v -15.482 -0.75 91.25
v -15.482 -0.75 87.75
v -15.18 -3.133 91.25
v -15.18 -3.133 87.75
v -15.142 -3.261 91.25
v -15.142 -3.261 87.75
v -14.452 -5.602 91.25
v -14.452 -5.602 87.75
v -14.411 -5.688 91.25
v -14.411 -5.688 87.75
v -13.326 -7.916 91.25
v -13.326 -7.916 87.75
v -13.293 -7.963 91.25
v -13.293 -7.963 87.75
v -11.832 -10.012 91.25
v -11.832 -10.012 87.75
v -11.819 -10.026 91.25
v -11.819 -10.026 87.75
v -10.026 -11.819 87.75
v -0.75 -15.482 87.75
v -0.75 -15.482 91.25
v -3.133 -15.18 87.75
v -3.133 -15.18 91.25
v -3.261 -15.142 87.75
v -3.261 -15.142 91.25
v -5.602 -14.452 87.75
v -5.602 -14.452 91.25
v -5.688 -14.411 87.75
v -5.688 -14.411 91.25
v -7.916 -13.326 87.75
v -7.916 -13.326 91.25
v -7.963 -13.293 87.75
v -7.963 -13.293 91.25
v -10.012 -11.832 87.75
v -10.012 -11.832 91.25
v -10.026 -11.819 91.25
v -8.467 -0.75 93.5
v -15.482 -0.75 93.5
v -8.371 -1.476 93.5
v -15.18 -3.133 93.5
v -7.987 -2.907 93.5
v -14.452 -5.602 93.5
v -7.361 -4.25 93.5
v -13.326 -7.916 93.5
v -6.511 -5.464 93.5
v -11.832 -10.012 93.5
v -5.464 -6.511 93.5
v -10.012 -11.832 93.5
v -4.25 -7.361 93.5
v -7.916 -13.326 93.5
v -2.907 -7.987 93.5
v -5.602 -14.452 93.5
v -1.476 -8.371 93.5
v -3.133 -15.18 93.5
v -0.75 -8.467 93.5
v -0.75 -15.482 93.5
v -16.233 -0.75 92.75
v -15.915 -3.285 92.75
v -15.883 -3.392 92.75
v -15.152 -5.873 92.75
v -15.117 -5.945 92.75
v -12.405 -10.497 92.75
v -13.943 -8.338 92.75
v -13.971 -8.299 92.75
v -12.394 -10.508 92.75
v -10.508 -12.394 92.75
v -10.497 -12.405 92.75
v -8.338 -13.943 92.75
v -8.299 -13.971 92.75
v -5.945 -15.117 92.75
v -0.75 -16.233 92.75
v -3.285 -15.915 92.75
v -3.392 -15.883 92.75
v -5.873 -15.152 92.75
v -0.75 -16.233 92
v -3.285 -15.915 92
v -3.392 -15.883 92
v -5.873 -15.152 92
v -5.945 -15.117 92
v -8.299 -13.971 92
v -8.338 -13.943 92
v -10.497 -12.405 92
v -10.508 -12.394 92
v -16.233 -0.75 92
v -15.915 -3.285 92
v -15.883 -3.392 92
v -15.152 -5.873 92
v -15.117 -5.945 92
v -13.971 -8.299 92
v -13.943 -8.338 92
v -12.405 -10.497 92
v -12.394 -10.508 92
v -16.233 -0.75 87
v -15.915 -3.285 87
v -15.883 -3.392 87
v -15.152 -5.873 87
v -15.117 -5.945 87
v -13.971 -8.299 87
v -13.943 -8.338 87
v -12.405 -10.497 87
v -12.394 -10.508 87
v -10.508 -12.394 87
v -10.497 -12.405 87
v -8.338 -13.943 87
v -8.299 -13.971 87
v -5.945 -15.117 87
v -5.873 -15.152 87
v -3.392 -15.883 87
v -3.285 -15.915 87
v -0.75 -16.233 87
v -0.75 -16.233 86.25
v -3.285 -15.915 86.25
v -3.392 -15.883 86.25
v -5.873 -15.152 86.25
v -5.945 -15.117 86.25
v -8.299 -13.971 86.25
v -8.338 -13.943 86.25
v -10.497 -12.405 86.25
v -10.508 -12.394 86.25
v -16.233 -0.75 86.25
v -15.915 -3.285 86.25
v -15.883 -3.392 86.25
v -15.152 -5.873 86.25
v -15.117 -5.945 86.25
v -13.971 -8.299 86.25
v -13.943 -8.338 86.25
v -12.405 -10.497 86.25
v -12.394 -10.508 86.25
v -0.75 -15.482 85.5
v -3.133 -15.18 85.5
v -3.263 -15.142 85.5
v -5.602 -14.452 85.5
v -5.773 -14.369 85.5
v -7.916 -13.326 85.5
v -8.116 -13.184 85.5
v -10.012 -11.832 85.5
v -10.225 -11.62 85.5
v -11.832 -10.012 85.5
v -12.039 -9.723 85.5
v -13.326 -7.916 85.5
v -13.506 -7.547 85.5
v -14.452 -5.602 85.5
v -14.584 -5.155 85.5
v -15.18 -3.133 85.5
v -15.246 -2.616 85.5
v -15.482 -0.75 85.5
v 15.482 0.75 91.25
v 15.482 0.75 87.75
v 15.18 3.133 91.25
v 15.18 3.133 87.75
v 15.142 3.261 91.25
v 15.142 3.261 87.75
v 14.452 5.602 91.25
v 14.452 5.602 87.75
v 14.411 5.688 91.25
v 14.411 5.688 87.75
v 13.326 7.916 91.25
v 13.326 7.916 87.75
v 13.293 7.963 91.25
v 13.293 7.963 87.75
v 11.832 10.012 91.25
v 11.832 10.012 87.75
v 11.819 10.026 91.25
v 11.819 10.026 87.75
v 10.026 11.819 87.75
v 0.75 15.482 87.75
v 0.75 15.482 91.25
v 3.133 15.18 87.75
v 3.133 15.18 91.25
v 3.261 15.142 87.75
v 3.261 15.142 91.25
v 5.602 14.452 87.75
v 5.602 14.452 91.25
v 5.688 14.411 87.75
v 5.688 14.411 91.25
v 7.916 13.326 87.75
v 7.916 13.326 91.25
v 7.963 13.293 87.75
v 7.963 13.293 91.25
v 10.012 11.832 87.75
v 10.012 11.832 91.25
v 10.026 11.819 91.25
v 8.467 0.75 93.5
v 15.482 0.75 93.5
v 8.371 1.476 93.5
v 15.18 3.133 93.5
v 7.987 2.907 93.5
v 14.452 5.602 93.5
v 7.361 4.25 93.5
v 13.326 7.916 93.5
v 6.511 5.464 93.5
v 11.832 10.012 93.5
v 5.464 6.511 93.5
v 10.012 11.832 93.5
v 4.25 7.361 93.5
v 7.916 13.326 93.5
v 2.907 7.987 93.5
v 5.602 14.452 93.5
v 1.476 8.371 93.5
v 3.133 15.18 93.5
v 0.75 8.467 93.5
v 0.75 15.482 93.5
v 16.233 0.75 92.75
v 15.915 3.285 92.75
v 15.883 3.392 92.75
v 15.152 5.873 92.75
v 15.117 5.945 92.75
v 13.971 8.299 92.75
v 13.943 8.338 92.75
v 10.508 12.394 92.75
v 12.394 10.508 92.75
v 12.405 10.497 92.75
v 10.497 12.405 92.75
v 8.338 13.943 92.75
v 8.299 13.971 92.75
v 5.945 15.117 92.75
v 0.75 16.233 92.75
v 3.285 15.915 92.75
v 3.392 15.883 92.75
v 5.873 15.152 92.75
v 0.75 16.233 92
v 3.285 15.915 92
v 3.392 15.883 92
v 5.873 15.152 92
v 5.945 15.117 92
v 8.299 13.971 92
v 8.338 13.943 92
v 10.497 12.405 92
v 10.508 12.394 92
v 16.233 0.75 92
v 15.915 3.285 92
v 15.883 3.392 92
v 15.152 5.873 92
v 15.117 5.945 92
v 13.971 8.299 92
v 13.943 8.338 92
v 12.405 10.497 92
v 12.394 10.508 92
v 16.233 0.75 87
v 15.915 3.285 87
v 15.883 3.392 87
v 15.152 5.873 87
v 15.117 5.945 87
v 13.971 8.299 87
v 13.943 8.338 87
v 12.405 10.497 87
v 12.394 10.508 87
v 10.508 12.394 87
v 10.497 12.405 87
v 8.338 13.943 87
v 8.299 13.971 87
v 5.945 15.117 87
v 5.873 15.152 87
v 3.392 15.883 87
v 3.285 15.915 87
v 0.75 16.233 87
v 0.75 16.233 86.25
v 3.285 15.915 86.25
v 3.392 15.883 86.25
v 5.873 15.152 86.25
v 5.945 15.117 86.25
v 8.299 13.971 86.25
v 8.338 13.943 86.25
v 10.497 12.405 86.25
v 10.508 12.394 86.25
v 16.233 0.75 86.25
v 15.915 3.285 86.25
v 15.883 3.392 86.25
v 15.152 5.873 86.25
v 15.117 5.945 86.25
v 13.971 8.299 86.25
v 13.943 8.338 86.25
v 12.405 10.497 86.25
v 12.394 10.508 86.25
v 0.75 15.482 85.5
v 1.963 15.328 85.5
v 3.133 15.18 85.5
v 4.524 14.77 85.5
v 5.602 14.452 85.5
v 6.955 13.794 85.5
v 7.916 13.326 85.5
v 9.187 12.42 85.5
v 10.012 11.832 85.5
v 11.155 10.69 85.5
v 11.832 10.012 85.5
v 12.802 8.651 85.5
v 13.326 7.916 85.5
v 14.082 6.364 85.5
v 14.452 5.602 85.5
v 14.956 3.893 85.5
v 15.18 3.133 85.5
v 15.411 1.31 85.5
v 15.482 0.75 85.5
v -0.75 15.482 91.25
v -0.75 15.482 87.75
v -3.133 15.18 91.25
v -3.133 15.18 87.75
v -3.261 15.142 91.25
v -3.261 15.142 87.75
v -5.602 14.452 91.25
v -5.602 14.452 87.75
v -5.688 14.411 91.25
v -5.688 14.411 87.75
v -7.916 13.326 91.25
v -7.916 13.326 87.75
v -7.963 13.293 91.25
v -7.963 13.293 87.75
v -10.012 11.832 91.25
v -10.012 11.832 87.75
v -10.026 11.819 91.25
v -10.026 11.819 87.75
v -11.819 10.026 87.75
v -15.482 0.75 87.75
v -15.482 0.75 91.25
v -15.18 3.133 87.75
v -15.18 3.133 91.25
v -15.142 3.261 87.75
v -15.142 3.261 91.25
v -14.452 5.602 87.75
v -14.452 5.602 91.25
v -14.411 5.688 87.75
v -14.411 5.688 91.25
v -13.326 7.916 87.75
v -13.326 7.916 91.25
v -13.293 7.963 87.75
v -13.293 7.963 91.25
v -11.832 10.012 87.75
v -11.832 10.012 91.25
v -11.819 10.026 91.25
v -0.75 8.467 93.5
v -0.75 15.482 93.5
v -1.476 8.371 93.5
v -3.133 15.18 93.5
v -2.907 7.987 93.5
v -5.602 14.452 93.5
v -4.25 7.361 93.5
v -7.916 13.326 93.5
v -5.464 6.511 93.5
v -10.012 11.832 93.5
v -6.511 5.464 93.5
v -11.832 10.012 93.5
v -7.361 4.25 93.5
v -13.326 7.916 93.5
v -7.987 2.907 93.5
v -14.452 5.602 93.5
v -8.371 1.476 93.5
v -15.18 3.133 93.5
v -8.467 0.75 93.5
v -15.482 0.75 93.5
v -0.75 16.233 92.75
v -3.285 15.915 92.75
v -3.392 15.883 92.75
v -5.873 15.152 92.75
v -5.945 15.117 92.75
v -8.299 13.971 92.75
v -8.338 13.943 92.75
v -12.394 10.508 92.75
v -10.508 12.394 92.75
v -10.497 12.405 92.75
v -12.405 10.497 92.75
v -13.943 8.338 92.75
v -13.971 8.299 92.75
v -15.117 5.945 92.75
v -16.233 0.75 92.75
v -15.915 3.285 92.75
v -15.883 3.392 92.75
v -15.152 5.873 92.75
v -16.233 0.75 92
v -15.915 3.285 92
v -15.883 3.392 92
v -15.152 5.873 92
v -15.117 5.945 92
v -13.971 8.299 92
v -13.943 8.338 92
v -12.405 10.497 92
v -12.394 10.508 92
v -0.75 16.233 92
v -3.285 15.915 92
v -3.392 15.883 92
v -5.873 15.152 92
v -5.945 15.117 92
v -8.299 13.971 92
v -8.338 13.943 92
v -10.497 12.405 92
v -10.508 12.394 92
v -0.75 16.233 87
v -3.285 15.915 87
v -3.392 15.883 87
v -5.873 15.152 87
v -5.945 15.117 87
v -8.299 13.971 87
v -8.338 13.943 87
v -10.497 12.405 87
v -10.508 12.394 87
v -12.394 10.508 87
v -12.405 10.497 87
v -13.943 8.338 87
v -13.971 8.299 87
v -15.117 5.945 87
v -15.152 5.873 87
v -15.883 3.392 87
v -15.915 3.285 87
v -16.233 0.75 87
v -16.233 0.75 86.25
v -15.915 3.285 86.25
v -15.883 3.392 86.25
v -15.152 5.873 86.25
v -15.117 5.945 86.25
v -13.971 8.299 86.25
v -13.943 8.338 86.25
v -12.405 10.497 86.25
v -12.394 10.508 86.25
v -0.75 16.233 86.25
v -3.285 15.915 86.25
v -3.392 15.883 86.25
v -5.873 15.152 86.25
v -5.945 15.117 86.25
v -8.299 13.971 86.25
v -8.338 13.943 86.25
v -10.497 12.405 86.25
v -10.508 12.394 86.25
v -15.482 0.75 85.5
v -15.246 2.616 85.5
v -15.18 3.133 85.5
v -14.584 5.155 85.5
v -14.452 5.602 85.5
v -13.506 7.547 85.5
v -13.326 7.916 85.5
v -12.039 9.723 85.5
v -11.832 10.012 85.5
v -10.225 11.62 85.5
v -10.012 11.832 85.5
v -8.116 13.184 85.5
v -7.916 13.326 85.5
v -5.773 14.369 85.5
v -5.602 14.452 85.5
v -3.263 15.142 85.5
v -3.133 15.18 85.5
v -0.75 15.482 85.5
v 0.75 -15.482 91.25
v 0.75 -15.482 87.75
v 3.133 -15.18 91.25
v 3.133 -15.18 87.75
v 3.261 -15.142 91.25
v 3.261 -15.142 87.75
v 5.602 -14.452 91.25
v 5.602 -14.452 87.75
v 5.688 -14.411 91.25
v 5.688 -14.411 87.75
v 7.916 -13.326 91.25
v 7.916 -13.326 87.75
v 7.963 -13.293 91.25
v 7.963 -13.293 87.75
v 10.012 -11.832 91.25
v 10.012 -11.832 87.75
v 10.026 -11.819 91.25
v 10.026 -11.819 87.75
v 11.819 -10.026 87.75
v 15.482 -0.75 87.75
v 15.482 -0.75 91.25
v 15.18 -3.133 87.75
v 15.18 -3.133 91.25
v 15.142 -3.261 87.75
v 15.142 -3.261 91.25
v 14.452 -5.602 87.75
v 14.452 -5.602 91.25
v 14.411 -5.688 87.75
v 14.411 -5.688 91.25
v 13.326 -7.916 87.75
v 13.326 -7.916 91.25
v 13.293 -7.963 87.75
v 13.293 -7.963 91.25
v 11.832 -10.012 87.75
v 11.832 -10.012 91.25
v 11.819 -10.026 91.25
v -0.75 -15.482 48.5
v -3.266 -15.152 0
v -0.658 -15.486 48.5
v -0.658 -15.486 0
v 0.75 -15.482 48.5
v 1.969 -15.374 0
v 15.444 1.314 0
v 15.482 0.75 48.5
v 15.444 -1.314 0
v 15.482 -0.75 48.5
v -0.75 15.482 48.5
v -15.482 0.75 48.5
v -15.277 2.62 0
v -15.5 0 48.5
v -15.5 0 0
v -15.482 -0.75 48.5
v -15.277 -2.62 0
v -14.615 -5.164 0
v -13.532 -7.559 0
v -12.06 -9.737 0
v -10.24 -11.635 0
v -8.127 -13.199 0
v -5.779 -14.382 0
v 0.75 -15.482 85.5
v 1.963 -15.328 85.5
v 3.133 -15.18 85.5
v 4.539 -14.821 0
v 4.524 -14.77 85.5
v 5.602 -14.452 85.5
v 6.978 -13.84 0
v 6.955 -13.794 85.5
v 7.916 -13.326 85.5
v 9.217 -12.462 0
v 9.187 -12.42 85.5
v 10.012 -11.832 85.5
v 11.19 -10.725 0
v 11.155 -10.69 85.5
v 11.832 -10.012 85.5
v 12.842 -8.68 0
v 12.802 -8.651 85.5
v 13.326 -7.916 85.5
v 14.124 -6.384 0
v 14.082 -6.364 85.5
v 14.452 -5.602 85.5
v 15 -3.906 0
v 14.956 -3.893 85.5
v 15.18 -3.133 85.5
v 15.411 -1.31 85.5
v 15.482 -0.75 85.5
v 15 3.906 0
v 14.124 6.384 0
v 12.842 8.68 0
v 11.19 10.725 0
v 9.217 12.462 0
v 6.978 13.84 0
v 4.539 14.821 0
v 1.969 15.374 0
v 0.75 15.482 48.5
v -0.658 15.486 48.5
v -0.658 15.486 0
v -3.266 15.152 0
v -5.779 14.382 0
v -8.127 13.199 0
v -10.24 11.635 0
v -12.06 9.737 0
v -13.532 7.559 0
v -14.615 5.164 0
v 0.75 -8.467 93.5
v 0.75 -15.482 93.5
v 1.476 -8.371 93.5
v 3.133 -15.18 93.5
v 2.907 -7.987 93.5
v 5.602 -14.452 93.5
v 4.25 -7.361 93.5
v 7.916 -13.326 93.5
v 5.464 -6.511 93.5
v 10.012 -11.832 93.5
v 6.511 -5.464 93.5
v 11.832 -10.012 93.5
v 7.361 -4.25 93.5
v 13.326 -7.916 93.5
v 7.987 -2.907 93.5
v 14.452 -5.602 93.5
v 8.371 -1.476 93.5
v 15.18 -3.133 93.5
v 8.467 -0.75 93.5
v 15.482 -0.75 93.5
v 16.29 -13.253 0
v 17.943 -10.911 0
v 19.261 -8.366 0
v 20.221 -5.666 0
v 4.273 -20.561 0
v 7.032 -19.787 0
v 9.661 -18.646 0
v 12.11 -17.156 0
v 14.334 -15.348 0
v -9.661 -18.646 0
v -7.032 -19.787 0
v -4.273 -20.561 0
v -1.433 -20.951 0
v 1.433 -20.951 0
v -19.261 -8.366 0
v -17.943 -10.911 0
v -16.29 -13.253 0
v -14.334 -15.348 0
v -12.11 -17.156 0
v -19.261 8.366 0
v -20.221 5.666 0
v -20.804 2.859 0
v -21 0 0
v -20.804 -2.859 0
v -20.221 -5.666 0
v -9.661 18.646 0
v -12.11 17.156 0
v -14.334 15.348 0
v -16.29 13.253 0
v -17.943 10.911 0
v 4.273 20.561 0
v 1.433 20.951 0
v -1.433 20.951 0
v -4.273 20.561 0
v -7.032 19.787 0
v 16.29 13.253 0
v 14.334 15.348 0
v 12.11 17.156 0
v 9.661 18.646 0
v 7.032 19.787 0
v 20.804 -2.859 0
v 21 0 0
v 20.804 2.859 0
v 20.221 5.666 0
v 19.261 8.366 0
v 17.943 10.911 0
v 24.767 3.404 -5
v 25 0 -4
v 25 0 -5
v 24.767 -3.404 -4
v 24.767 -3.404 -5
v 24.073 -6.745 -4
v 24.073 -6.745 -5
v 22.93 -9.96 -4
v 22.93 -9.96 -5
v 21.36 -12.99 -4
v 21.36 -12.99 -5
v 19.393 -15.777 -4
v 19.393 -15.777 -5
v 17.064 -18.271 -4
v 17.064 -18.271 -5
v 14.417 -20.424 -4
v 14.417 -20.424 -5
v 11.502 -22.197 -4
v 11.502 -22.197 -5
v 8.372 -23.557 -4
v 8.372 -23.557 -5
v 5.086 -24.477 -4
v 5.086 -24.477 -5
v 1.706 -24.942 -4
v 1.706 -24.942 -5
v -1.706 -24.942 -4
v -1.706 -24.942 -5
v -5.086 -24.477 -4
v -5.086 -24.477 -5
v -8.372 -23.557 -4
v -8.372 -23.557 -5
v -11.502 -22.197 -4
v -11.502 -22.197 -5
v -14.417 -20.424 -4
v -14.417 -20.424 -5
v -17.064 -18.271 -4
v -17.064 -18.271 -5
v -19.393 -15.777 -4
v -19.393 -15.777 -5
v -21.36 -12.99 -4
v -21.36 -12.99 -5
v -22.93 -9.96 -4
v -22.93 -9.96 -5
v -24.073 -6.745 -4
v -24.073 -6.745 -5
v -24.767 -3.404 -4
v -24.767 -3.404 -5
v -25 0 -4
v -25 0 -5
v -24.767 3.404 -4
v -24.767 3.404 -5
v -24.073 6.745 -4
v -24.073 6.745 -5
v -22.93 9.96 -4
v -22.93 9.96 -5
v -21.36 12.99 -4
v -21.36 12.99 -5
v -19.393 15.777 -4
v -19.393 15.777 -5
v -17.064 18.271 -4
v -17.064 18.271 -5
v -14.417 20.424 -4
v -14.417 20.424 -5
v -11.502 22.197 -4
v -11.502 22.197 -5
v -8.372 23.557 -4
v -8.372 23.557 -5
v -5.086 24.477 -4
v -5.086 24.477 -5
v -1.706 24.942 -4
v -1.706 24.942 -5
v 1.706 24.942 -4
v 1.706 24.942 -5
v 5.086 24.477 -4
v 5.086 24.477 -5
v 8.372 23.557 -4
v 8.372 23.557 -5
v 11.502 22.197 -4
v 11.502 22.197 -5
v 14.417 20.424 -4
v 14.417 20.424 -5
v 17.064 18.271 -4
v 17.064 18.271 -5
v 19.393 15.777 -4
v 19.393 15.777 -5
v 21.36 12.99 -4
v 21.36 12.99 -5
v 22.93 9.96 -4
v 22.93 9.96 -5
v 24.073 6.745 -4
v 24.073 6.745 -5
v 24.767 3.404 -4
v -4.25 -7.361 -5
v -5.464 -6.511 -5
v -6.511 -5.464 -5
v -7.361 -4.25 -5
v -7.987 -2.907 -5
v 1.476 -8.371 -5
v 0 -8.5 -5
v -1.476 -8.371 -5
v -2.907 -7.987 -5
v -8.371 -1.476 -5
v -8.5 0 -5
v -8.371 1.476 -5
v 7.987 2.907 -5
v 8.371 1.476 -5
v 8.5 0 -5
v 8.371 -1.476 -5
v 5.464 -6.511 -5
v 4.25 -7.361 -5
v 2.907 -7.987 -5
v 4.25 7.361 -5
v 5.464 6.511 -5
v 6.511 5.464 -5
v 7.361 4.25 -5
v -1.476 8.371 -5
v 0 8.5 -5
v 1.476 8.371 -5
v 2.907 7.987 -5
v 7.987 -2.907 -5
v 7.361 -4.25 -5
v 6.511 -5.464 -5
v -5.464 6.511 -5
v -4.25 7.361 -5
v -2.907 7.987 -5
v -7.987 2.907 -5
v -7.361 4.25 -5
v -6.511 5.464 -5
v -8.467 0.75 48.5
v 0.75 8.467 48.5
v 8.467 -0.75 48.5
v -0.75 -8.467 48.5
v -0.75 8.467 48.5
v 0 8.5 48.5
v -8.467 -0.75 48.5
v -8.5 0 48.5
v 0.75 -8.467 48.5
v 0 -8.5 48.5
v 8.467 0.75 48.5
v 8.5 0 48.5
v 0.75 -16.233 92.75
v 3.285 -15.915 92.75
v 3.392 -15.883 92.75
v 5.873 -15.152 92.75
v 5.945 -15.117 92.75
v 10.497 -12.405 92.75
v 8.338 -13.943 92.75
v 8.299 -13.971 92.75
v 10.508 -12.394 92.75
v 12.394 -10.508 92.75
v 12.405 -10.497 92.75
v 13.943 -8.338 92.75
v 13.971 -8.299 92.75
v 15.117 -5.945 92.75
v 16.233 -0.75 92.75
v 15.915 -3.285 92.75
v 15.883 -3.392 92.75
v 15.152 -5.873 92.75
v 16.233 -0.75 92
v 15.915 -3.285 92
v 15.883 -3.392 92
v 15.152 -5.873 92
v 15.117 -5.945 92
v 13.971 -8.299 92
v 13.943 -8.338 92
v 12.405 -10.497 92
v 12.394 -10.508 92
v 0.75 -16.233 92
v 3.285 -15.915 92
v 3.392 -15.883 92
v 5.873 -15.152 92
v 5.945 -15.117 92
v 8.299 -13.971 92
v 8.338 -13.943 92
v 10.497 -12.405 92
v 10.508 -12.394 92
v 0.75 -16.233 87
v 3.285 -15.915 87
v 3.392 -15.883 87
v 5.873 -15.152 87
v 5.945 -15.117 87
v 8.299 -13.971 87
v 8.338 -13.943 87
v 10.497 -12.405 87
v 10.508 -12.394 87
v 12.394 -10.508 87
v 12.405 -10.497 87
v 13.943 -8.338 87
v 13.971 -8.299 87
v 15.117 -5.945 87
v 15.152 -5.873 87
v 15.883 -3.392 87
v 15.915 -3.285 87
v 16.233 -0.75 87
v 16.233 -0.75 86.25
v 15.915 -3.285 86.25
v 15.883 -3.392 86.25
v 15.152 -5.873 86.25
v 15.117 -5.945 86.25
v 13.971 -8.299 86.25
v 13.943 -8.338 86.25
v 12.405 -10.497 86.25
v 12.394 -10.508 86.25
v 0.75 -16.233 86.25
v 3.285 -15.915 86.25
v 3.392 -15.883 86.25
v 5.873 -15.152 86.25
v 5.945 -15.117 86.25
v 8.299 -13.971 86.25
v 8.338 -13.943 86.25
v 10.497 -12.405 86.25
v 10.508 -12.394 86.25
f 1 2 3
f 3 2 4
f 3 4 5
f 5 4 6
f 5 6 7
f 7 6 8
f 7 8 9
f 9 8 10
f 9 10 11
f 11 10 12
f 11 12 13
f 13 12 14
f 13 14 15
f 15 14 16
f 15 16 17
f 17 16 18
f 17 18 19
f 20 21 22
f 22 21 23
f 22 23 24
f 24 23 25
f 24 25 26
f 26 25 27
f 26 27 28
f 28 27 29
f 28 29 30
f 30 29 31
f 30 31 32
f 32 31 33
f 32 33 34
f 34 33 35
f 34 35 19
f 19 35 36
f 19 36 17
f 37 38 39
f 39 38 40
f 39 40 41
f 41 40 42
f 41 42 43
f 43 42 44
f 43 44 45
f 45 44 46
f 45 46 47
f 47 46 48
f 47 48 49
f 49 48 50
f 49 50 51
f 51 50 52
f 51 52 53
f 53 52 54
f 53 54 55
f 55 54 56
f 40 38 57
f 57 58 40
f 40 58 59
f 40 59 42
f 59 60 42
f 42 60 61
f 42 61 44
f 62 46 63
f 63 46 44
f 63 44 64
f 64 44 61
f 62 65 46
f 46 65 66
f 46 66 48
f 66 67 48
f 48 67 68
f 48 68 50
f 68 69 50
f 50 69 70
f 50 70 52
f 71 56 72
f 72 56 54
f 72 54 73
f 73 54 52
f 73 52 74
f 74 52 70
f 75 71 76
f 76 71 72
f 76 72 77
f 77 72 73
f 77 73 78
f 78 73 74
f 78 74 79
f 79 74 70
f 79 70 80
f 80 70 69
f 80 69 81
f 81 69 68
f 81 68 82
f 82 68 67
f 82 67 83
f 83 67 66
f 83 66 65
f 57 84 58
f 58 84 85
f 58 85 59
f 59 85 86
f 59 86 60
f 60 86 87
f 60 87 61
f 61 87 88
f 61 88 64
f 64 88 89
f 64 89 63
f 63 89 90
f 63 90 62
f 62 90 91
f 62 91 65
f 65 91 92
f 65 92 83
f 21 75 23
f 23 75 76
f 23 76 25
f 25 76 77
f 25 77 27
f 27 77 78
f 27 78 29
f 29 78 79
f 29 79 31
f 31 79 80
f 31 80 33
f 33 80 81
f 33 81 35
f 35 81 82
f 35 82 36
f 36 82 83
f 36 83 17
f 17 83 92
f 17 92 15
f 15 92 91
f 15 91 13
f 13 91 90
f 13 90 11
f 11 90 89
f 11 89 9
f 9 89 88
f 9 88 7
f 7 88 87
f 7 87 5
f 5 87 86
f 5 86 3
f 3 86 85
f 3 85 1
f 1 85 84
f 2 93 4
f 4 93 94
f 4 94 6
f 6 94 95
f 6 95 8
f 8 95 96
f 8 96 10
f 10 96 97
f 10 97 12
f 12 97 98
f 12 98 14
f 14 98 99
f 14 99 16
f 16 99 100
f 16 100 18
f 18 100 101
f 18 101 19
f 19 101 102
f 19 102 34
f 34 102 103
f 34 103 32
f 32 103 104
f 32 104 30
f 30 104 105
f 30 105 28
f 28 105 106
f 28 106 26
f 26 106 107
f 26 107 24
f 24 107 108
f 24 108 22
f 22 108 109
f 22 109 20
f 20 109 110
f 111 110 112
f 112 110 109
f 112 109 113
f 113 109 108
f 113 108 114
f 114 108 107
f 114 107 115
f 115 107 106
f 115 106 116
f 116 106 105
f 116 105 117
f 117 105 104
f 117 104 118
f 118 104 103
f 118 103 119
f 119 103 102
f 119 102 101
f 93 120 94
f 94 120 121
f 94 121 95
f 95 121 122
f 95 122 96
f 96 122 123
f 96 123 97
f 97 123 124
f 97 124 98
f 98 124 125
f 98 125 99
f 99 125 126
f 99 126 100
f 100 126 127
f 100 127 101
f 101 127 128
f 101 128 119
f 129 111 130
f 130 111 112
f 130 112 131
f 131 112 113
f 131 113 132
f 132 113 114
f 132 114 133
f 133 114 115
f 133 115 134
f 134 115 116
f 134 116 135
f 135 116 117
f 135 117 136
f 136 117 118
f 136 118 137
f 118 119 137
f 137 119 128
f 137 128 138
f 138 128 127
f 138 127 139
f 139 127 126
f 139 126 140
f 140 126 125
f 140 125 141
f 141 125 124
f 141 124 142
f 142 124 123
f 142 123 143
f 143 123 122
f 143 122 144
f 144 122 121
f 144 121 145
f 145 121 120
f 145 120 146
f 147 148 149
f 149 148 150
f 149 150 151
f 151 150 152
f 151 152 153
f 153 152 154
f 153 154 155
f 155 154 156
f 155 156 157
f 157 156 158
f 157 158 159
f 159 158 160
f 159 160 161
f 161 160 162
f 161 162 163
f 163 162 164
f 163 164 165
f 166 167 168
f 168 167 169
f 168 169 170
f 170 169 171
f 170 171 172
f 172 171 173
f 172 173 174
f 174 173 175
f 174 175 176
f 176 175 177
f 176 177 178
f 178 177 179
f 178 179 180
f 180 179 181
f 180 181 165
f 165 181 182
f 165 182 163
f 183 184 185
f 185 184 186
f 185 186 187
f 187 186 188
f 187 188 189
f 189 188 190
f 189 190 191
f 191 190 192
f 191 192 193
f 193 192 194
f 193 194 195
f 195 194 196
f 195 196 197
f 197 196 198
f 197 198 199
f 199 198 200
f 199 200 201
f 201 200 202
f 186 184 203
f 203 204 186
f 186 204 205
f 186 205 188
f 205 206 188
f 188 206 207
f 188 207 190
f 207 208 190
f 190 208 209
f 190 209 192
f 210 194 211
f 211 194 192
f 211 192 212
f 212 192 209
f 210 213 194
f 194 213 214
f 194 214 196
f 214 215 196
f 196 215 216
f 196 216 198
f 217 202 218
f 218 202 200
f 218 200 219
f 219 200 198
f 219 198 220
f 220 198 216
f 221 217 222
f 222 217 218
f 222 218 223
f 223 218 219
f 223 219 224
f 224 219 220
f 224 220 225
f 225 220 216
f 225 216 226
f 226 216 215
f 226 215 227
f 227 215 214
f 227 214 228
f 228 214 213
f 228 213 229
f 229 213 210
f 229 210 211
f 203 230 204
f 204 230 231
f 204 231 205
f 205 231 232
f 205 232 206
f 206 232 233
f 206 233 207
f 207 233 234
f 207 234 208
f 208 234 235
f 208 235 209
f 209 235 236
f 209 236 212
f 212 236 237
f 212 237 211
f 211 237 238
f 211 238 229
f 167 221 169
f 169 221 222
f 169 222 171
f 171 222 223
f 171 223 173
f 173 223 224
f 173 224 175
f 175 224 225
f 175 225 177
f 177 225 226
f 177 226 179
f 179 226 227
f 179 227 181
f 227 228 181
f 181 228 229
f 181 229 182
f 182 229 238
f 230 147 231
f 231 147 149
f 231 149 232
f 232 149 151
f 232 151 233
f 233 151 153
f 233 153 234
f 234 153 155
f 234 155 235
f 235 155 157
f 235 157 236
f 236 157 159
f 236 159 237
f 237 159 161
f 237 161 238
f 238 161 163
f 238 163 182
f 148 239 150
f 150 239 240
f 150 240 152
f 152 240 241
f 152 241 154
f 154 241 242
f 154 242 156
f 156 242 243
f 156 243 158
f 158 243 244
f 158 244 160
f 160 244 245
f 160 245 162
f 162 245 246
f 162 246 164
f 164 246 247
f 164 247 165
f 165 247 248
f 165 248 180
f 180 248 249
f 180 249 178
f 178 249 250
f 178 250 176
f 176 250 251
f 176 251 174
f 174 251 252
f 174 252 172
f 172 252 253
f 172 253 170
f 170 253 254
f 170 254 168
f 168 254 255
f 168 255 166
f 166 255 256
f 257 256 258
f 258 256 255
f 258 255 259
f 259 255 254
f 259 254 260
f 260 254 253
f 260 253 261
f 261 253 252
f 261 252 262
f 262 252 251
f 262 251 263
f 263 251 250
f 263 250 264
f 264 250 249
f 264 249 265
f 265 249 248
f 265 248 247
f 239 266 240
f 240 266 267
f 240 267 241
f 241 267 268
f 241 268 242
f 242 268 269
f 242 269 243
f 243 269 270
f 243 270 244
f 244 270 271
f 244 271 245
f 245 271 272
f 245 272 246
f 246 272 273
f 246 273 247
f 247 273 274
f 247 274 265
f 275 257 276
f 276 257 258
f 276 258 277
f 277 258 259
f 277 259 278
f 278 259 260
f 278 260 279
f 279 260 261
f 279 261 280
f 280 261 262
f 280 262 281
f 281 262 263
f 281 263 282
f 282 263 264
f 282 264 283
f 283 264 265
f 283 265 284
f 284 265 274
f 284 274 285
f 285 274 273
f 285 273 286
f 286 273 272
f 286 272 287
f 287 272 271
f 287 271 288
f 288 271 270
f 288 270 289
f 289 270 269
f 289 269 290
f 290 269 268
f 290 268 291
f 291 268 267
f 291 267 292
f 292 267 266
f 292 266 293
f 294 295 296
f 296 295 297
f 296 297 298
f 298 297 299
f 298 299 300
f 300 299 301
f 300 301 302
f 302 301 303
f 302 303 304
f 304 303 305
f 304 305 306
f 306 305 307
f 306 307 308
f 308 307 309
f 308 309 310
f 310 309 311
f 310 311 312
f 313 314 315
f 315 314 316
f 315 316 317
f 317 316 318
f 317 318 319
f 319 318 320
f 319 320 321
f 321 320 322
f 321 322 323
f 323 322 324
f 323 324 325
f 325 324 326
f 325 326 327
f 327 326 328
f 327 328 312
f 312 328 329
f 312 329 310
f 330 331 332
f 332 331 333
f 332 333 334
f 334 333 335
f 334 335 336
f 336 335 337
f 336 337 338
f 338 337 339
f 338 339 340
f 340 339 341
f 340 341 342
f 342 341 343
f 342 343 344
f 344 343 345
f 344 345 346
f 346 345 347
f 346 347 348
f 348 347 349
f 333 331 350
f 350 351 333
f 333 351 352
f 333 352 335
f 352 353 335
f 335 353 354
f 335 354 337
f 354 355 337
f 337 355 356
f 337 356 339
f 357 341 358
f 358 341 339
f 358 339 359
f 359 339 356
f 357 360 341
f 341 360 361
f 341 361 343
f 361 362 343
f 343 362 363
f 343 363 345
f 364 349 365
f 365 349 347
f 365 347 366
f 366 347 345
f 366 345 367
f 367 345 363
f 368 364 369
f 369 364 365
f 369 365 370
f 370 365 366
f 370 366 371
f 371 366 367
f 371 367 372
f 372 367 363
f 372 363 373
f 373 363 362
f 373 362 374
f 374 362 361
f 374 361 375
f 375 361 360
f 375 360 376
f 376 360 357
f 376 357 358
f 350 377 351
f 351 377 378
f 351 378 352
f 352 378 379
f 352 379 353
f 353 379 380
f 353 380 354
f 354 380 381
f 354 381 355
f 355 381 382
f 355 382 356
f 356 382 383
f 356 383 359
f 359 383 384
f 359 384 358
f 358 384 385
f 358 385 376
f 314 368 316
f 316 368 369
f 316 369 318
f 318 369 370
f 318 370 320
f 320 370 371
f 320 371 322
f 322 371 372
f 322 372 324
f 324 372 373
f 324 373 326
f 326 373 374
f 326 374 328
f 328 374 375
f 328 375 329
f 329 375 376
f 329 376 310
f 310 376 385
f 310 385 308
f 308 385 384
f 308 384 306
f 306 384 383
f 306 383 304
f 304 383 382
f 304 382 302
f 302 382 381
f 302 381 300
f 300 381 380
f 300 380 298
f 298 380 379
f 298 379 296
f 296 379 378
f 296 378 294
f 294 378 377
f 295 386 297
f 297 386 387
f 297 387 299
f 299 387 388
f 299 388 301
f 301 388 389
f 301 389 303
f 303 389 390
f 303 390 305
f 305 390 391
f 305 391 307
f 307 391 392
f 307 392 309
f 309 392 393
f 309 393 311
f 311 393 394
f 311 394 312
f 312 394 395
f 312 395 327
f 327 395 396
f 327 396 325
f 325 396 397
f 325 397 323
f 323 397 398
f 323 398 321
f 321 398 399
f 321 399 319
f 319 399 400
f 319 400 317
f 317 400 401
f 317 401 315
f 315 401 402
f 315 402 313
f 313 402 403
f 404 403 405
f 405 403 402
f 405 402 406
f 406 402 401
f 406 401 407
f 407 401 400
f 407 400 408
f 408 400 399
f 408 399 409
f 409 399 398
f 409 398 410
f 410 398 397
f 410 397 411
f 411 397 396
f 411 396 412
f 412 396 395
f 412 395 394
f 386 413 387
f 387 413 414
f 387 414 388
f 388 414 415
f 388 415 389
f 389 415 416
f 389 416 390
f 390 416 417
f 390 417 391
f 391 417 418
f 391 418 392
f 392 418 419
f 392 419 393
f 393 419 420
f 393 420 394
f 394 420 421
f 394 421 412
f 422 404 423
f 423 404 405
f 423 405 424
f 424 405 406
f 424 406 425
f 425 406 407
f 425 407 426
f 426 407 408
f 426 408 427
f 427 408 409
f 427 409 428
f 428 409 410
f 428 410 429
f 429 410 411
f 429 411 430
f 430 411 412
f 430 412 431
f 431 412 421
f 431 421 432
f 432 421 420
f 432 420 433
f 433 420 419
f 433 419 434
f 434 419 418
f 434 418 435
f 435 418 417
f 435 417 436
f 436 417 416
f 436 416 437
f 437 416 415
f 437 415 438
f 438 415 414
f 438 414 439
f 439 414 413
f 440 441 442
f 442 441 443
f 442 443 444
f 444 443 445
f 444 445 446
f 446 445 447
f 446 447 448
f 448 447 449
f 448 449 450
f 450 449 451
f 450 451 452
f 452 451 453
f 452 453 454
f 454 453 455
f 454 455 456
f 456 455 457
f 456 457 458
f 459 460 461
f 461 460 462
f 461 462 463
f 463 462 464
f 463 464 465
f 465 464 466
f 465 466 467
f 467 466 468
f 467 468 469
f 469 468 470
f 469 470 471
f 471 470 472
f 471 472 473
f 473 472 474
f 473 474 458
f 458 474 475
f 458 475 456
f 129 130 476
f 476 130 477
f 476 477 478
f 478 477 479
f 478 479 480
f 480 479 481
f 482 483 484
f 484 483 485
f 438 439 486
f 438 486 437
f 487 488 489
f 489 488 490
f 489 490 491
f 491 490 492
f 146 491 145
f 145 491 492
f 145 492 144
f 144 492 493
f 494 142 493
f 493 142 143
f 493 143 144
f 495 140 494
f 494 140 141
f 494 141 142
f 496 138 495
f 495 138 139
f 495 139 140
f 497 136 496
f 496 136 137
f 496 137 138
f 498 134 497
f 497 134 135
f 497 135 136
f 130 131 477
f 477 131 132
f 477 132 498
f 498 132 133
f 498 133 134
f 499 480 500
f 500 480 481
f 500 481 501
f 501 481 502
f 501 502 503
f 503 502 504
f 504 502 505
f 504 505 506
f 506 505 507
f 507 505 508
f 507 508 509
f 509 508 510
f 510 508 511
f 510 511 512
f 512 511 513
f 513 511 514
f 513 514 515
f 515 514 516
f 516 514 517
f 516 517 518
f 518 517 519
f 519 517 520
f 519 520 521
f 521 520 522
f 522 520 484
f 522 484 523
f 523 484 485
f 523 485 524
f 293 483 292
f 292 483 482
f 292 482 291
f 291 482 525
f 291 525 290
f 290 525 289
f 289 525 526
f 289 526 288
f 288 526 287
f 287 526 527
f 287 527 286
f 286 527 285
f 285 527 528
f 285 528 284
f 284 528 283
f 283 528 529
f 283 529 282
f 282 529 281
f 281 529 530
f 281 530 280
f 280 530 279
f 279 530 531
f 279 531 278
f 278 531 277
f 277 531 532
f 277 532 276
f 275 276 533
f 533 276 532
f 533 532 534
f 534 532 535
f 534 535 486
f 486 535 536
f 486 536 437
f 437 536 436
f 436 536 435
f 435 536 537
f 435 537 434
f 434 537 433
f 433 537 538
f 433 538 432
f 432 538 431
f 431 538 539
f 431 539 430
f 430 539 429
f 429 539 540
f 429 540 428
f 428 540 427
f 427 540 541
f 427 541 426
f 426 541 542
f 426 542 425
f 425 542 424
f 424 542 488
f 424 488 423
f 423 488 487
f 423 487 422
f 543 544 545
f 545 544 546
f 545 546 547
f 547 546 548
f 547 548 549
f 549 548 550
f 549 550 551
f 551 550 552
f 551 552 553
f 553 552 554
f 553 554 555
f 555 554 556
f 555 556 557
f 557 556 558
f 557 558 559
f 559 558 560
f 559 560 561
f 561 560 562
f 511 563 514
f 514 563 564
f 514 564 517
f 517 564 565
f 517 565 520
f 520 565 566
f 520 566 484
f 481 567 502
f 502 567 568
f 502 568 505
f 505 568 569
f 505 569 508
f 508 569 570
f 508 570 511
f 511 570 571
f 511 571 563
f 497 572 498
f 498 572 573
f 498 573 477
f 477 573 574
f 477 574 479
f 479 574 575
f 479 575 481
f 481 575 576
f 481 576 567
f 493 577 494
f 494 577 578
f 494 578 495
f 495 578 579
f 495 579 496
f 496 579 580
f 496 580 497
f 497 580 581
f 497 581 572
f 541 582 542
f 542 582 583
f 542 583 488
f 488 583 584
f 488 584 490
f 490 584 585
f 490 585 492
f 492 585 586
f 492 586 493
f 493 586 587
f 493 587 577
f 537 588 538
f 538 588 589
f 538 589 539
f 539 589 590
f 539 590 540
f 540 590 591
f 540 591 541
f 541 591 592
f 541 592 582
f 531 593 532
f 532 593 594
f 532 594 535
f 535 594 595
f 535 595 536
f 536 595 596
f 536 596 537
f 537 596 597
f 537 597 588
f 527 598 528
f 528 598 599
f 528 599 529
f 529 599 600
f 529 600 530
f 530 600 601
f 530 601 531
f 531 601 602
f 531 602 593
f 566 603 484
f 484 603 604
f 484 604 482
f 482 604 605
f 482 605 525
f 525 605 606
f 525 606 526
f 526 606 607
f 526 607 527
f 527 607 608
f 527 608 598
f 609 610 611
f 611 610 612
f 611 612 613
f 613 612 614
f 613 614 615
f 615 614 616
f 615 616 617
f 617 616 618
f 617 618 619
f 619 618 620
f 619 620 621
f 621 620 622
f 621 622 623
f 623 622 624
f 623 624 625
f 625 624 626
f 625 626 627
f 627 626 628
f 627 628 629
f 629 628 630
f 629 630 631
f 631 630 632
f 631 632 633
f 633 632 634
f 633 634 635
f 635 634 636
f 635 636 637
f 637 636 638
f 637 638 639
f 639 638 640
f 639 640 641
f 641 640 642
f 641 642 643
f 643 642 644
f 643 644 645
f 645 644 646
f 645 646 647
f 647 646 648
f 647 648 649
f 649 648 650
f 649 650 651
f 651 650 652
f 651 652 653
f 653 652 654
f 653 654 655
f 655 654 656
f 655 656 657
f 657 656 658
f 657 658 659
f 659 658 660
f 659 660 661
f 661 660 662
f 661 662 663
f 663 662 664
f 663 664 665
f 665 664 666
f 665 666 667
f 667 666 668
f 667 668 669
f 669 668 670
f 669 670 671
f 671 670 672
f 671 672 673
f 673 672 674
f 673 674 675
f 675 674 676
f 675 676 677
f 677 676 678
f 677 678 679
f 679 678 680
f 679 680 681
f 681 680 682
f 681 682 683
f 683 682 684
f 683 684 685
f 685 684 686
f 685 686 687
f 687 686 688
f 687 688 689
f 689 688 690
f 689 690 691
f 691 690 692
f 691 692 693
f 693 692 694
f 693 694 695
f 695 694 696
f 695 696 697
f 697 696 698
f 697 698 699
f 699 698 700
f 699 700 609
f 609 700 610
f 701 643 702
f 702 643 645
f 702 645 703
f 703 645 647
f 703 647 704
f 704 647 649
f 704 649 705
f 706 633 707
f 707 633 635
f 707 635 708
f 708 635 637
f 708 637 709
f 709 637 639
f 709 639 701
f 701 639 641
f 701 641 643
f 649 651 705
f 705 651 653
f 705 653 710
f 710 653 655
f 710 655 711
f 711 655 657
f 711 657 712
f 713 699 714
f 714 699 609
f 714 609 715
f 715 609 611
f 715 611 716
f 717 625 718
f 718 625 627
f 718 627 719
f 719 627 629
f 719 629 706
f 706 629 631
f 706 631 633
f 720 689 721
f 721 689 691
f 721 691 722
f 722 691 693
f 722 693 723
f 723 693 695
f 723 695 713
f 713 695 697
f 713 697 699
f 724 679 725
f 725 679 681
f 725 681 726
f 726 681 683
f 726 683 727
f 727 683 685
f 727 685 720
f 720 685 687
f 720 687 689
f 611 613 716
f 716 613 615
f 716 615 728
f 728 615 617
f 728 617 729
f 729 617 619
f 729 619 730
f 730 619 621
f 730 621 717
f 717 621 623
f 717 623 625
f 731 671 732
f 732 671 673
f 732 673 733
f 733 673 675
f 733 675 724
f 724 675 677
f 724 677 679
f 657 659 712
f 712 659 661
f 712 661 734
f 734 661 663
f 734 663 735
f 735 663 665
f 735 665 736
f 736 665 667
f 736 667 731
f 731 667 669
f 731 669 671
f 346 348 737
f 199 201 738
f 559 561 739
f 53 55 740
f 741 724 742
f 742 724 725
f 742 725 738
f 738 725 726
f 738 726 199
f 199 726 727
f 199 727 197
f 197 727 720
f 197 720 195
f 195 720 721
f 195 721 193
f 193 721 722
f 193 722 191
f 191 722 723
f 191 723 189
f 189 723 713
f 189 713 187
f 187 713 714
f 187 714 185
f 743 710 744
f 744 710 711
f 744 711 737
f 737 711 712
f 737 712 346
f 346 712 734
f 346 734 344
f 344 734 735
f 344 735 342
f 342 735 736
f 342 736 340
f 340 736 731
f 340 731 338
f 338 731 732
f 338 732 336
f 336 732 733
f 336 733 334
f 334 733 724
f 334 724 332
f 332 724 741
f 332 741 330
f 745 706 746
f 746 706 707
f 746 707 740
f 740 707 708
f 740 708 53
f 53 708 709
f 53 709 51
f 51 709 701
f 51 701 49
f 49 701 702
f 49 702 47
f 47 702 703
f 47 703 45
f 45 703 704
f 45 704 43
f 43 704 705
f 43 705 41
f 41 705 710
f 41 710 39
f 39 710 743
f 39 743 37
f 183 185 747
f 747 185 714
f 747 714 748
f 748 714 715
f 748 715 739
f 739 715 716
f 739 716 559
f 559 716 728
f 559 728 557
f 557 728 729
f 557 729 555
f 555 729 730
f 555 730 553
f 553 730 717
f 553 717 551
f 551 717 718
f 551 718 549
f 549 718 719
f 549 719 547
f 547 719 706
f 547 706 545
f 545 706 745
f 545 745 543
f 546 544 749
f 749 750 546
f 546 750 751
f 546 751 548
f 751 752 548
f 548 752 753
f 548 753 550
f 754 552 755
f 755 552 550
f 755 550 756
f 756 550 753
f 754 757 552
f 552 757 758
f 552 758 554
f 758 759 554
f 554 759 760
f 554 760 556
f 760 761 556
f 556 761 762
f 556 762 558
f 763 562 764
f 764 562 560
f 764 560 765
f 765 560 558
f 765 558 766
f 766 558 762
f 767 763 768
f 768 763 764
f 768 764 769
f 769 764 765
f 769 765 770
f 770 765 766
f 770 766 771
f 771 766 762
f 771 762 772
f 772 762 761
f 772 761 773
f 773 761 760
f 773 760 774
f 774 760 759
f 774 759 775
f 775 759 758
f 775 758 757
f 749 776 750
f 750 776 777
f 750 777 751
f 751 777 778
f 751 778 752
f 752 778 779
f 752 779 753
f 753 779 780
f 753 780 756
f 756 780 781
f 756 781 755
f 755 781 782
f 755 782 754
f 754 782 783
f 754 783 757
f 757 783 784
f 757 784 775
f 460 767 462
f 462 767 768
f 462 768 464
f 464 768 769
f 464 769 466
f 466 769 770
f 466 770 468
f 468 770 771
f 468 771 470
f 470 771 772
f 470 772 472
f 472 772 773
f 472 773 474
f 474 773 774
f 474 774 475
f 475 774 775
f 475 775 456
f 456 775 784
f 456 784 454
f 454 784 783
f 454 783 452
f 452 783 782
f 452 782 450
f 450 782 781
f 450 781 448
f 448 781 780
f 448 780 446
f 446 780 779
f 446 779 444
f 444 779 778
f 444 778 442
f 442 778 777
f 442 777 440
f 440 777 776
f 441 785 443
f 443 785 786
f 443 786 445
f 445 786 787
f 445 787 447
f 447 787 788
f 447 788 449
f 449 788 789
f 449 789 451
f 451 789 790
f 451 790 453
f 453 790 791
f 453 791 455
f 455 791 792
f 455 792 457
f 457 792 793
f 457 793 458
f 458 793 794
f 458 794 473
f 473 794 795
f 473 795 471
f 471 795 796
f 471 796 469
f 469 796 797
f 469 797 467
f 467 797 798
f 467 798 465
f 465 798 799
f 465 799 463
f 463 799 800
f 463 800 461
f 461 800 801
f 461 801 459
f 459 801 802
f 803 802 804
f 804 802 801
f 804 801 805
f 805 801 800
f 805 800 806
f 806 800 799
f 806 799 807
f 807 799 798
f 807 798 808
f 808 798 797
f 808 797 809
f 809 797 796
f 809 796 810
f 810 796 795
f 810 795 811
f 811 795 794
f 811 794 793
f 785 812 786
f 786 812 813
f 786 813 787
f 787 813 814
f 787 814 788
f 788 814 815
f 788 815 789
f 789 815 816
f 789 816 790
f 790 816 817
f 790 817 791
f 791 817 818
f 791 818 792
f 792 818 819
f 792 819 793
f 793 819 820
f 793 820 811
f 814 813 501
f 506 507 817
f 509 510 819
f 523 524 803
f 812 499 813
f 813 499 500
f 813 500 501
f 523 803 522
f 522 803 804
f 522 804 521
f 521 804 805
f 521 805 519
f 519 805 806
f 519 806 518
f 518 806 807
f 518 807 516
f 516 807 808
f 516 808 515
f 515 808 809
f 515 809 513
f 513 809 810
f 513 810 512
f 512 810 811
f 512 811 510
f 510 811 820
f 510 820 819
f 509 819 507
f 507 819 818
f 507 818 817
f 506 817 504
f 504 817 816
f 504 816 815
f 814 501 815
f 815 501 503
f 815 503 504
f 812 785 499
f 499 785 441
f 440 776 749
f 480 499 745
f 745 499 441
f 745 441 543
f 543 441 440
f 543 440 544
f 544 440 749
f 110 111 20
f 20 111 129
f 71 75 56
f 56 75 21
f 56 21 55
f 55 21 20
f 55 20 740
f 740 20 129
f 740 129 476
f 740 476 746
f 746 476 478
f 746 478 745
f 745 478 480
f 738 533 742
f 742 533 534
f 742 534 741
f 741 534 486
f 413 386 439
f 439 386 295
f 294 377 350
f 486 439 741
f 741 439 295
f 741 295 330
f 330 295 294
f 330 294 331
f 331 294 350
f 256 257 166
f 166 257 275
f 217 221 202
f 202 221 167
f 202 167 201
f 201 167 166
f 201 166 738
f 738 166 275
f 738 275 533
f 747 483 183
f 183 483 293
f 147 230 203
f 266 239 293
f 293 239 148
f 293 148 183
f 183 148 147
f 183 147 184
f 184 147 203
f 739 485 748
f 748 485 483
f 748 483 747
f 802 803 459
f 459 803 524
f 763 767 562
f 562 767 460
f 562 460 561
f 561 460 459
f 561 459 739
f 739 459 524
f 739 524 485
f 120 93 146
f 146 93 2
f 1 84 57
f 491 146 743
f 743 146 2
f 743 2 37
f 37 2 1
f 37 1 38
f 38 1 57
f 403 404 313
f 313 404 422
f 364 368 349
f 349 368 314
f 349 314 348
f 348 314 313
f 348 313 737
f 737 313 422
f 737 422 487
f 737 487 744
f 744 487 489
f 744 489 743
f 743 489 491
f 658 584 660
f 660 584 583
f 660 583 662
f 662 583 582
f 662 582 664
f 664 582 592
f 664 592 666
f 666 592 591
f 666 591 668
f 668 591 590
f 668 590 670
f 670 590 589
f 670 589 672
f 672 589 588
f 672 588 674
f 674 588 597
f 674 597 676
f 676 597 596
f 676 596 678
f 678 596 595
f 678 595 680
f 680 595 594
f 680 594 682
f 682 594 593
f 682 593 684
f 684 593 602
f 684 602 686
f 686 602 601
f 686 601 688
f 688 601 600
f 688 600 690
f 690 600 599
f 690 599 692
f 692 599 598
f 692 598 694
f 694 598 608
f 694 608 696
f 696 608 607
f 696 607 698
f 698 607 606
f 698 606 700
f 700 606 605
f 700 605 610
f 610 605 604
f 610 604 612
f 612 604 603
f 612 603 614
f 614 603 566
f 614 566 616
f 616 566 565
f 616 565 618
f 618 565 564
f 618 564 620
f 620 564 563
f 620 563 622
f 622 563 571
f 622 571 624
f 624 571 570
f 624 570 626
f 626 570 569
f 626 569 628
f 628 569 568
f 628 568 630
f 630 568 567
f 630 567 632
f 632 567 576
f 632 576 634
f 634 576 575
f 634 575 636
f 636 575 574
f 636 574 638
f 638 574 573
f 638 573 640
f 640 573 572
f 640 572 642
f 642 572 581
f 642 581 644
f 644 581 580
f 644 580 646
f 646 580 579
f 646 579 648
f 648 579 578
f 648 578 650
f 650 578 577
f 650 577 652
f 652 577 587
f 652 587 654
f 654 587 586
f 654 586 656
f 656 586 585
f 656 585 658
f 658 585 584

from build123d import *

# Parameters (mm, degrees)
AXLE_BASE_SKETCH_R        = 15.5
AXLE_DEPTH                = 93.5
GUARD_BASE_R              = 25
GUARD_DEPTH               = 5
INNER_AXLE_HOLE_BASE_R    = 8.5
INNER_AXLE_HOLE_DEPTH     = 99.5
BEND_ROOM_BASE_W          = 1.5
BEND_ROOM_BASE_H          = 50
BEND_ROOM_1_DEPTH         = 45
BEND_ROOM_2_COUNT         = 2
BEND_ROOM_2_ANGLE         = 90
EASY_REMOVAL_CHAMFER_SIZE = 4


with BuildPart() as part:
    # Axle base sketch → Axle (new body)
    with BuildSketch(Plane.XY):
        Circle(AXLE_BASE_SKETCH_R)
    extrude(amount=AXLE_DEPTH)

    # Guard base → Guard (add)
    with BuildSketch(Plane(origin=(0, 0, 0), x_dir=(-1, 0, 0), z_dir=(0, 0, -1))):
        Circle(GUARD_BASE_R)
    extrude(amount=GUARD_DEPTH)

    # Inner axle hole base → Inner axle hole (cut, through all)
    with BuildSketch(Plane.XY.offset(93.5)):
        Circle(INNER_AXLE_HOLE_BASE_R)
    extrude(amount=-INNER_AXLE_HOLE_DEPTH, mode=Mode.SUBTRACT)

    # Mate ring base → Mate rings (revolve)
    with BuildSketch(Plane(origin=(0, 0, 0), x_dir=(1, 0, 0), z_dir=(0, 1, 0))):
        Polygon((15.5, -93.5), (16.25, -92.75), (16.25, -92), (15.5, -91.25), align=None)
        Polygon((15.5, -87.75), (16.25, -87), (16.25, -86.25), (15.5, -85.5), align=None)
    revolve(axis=Axis((0, 0, 0), (0, 0, -1)))

    # Bend room base → Bend room 1 (cut)
    with BuildSketch(Plane.XY.offset(93.5)):
        Rectangle(BEND_ROOM_BASE_W, BEND_ROOM_BASE_H)
    bend_room_1 = extrude(amount=-BEND_ROOM_1_DEPTH, mode=Mode.SUBTRACT)

    # Bend room 2: Bend room 1 ×2 about axis
    bend_room_2_axis = Axis((0, 0, 0), (0, 0, -1))
    for i in range(1, BEND_ROOM_2_COUNT):
        add(bend_room_1.rotate(bend_room_2_axis, i * BEND_ROOM_2_ANGLE / (BEND_ROOM_2_COUNT - 1)), mode=Mode.SUBTRACT)

    # Easy removal chamfer
    easy_removal_chamfer_edges = [part.edges().sort_by_distance(p)[0] for p in [
        (25, 0, 0),
    ]]
    chamfer(easy_removal_chamfer_edges, length=EASY_REMOVAL_CHAMFER_SIZE)


solid = part.part
